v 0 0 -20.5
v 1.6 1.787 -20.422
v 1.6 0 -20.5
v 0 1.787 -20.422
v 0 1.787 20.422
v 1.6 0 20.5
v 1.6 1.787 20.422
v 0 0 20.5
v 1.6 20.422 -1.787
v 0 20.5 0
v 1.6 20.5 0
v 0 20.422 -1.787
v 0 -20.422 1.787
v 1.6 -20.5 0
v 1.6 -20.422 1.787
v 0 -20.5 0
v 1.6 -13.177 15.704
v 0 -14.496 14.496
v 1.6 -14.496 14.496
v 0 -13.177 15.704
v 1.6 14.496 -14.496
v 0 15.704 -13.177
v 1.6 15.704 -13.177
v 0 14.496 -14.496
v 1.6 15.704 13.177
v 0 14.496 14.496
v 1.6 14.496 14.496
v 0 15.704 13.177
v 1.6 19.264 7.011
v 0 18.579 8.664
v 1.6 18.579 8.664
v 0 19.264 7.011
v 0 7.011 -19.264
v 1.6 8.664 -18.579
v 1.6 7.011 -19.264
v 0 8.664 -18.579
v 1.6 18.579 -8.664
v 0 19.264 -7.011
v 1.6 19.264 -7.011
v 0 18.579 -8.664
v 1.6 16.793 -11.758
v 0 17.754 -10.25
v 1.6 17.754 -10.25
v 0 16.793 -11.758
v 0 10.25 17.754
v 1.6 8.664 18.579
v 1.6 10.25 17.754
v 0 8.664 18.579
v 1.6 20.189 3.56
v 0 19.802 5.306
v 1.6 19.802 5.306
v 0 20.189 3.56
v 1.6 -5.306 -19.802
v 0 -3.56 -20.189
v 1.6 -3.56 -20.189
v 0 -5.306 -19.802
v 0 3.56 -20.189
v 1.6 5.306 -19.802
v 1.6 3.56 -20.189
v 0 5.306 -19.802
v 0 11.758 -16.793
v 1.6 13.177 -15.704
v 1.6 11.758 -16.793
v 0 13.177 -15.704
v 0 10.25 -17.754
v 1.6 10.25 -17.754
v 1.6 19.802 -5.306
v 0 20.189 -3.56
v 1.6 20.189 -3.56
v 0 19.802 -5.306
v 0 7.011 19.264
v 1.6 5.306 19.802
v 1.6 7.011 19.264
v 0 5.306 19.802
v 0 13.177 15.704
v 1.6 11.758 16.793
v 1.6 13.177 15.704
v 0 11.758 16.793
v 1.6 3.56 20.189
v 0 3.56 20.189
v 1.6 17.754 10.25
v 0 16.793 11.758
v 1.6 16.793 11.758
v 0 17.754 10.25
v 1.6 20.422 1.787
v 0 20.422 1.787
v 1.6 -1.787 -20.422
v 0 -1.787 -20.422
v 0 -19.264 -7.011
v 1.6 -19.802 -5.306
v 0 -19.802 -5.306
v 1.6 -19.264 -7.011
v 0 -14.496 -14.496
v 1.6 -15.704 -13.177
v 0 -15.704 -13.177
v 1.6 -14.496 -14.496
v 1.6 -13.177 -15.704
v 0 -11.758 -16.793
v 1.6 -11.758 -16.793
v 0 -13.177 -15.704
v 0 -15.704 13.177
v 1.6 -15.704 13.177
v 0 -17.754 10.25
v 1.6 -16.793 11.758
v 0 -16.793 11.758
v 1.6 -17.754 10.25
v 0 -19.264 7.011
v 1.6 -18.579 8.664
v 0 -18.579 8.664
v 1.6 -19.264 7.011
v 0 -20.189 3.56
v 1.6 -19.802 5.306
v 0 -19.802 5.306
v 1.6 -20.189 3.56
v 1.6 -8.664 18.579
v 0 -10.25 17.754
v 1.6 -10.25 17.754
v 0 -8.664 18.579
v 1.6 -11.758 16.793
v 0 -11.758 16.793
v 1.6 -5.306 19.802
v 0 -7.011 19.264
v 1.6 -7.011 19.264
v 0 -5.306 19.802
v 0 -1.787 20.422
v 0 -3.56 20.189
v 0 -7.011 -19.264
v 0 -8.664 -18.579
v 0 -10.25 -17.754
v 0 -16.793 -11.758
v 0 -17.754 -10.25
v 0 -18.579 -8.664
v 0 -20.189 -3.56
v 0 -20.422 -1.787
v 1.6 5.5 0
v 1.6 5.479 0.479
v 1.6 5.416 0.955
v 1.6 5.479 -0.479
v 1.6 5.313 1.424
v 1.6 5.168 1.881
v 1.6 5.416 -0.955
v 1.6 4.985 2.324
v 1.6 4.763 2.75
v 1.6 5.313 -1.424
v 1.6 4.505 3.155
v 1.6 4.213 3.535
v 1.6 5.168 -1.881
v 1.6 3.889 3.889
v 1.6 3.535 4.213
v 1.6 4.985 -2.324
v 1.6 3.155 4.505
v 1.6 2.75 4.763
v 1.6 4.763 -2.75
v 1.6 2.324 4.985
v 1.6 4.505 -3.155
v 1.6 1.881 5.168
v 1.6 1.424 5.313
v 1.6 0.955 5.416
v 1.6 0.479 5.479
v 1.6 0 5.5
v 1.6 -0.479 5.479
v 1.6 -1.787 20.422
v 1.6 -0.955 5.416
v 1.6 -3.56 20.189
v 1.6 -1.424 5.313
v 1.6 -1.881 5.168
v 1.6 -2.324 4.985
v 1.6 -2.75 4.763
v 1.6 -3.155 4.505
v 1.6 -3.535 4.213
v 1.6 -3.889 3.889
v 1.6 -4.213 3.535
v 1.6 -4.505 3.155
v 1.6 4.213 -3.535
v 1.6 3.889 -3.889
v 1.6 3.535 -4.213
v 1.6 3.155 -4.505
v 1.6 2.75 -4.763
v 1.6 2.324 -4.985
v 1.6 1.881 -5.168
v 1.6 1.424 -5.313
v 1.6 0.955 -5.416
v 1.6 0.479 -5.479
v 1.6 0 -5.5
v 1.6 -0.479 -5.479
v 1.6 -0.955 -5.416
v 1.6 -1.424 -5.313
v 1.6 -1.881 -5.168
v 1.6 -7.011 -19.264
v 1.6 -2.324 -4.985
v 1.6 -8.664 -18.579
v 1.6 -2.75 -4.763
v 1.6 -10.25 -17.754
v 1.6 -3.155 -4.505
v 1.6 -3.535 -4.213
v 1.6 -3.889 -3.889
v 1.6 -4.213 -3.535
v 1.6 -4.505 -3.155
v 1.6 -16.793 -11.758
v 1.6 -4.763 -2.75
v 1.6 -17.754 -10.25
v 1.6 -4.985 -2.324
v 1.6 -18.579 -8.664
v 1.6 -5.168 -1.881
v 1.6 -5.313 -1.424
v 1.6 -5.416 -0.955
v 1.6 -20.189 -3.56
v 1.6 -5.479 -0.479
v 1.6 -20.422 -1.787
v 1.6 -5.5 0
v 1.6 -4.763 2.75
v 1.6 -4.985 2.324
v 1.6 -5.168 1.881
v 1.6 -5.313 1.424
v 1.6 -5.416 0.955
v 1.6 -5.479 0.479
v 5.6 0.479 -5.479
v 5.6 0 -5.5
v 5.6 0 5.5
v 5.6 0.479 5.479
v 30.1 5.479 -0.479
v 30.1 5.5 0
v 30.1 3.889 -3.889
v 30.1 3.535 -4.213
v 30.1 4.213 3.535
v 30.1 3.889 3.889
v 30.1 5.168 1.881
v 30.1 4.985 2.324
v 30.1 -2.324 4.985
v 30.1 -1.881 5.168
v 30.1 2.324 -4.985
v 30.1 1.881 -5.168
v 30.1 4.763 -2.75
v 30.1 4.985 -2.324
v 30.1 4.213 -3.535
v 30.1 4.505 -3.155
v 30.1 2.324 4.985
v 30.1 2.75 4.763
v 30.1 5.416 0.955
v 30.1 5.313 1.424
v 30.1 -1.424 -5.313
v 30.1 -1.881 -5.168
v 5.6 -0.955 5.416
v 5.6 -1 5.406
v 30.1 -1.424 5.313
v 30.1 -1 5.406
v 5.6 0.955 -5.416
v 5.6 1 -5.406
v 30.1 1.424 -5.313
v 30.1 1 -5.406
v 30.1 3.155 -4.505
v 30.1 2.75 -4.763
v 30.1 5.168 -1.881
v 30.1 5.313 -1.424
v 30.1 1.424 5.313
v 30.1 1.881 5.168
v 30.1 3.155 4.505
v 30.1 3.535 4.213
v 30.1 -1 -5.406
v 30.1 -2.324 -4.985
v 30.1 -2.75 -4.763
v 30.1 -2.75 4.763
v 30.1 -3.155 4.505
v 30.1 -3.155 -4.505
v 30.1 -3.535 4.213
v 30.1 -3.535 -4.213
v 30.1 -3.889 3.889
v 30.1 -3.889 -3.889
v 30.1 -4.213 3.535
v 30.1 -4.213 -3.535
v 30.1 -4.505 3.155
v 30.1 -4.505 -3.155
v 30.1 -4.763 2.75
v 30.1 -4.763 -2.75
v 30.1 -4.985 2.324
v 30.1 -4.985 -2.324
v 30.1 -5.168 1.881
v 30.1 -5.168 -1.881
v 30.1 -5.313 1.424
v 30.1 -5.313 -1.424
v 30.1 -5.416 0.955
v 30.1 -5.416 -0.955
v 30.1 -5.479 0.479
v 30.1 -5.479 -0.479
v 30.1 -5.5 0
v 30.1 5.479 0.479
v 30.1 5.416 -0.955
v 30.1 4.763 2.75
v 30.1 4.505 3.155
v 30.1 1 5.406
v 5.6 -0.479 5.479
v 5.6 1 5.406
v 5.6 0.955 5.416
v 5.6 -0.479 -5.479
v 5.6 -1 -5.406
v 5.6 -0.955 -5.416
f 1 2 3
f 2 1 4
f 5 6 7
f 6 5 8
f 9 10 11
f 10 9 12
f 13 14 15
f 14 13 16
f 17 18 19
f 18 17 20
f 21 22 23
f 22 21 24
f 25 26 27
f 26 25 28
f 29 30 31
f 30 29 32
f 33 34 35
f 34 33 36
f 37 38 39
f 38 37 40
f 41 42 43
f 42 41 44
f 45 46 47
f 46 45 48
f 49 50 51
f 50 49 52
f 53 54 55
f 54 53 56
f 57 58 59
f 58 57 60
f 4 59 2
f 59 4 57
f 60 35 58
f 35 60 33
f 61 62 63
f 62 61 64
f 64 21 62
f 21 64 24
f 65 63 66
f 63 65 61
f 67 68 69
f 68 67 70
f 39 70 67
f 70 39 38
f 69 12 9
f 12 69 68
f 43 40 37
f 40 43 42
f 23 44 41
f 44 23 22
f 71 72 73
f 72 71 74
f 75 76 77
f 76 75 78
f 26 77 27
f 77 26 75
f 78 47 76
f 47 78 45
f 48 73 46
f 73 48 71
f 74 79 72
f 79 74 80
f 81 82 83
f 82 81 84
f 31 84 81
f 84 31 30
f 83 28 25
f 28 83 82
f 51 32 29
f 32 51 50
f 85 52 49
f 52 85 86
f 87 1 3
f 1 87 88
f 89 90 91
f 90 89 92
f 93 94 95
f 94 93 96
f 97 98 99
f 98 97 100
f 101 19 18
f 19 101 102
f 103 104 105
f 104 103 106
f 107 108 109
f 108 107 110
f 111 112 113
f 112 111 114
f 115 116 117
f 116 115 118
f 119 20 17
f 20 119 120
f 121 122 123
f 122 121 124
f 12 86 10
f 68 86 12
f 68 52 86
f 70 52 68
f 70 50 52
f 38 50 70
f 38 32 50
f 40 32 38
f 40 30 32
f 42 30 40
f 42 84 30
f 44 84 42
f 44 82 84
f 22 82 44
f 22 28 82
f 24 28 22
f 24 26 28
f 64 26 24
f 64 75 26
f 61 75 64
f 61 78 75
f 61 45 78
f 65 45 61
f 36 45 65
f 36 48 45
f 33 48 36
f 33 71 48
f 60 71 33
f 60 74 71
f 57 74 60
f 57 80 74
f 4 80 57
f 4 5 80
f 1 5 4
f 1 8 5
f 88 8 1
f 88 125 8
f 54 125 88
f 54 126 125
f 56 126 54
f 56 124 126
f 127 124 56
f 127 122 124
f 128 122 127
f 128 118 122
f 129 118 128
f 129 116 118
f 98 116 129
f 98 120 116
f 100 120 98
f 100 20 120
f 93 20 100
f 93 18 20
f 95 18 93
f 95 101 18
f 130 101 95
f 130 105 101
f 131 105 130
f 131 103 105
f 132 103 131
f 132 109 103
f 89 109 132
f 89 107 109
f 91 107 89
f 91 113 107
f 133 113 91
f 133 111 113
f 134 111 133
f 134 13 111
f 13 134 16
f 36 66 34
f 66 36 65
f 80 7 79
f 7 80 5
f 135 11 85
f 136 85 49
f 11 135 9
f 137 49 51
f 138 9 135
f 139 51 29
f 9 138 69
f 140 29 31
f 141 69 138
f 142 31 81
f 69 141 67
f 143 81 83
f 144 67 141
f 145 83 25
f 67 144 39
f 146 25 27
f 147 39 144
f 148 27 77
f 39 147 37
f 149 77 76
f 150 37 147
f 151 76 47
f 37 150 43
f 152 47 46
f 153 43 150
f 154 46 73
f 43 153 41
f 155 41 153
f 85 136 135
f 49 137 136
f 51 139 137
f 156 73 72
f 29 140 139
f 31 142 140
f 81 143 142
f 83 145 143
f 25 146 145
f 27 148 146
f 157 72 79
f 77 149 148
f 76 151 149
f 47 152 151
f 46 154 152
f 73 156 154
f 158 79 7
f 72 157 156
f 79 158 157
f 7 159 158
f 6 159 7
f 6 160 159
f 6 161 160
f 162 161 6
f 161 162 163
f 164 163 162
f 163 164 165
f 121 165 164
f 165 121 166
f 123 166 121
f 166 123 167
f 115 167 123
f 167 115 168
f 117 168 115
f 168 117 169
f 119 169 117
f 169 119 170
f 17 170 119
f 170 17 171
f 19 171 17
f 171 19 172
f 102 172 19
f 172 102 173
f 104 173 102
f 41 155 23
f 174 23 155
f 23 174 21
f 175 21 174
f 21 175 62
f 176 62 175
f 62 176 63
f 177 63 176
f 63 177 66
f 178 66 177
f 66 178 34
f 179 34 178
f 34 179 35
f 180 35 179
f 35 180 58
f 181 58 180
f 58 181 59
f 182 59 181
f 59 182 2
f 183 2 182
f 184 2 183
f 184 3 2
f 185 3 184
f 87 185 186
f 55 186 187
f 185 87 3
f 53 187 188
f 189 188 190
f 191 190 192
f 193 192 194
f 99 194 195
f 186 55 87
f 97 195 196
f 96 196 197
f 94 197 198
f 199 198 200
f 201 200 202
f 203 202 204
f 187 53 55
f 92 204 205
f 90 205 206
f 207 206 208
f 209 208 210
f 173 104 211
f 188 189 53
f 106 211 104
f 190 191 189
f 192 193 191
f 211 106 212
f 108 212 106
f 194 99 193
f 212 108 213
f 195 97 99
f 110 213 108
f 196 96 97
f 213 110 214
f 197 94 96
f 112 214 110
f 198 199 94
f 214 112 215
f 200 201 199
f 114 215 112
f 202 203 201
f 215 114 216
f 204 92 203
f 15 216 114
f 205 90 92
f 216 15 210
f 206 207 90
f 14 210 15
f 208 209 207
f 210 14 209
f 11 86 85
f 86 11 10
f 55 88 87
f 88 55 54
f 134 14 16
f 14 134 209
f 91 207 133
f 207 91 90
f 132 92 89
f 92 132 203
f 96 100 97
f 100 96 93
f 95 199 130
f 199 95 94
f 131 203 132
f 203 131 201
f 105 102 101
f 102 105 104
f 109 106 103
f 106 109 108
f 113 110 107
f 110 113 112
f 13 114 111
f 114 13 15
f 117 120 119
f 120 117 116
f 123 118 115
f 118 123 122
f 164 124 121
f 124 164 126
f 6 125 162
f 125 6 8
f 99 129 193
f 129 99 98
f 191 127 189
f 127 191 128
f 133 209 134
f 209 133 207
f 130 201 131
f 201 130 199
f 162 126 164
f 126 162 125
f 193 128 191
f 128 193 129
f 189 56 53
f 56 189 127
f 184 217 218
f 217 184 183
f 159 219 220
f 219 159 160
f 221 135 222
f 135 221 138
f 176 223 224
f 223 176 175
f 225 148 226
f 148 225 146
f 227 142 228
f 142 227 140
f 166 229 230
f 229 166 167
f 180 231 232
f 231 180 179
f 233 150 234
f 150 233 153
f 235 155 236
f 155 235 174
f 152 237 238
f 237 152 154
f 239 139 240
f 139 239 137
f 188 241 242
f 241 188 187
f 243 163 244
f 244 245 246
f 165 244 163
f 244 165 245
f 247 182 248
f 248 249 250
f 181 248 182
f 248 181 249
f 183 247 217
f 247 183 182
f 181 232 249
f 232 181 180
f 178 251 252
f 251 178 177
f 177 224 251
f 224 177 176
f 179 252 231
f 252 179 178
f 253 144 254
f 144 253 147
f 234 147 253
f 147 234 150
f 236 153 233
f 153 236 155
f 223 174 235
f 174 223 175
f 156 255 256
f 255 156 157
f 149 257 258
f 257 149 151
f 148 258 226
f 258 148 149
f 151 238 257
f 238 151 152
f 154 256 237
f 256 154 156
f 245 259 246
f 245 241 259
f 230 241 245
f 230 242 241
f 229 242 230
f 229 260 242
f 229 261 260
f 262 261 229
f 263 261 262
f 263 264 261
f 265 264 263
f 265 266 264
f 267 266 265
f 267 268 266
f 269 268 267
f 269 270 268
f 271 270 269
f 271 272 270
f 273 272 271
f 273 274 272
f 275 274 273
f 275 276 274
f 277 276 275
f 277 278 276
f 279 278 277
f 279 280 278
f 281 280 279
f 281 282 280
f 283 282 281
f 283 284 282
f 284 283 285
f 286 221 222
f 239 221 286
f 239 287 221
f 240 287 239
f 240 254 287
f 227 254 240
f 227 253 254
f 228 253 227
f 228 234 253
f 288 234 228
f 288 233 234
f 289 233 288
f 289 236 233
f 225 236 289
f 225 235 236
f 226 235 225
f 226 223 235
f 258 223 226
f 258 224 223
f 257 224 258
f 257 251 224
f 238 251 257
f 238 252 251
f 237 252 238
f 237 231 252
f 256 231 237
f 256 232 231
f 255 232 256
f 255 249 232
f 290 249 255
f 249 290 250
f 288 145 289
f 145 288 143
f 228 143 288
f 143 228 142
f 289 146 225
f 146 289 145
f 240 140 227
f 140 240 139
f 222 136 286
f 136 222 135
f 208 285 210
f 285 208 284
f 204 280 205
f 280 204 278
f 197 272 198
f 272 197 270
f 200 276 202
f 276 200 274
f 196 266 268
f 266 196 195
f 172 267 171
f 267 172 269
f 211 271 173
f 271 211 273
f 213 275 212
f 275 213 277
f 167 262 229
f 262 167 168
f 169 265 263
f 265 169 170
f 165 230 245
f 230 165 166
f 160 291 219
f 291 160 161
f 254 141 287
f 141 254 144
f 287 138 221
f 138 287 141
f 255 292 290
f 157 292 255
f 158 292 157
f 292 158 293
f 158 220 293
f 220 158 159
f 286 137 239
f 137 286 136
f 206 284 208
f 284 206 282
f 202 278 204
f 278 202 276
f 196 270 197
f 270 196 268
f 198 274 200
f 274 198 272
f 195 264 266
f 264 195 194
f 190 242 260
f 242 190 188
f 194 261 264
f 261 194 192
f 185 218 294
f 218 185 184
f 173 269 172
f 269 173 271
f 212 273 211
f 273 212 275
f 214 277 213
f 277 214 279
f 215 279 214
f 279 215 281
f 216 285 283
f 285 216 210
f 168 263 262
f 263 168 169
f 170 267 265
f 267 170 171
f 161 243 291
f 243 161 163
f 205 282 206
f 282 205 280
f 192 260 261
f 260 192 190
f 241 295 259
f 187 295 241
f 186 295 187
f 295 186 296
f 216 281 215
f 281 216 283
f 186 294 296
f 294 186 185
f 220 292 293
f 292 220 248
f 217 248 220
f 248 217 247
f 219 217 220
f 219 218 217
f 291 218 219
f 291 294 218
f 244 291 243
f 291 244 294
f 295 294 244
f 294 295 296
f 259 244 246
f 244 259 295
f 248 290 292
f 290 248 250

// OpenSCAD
coef = 10;
rotate([0,90,0])
difference() {
	union() {
		translate([0,0,.08*coef]) cylinder(h=.16*coef,r=2.05*coef,$fn=72,center=true);
		translate([0,0,1.51*coef]) cylinder(h=3*coef,r=0.55*coef,$fn=72,center=true);
	}
	translate([0,0,1.81*coef]) cube([1.1*coef,0.2*coef,2.5*coef],center=true);
}
